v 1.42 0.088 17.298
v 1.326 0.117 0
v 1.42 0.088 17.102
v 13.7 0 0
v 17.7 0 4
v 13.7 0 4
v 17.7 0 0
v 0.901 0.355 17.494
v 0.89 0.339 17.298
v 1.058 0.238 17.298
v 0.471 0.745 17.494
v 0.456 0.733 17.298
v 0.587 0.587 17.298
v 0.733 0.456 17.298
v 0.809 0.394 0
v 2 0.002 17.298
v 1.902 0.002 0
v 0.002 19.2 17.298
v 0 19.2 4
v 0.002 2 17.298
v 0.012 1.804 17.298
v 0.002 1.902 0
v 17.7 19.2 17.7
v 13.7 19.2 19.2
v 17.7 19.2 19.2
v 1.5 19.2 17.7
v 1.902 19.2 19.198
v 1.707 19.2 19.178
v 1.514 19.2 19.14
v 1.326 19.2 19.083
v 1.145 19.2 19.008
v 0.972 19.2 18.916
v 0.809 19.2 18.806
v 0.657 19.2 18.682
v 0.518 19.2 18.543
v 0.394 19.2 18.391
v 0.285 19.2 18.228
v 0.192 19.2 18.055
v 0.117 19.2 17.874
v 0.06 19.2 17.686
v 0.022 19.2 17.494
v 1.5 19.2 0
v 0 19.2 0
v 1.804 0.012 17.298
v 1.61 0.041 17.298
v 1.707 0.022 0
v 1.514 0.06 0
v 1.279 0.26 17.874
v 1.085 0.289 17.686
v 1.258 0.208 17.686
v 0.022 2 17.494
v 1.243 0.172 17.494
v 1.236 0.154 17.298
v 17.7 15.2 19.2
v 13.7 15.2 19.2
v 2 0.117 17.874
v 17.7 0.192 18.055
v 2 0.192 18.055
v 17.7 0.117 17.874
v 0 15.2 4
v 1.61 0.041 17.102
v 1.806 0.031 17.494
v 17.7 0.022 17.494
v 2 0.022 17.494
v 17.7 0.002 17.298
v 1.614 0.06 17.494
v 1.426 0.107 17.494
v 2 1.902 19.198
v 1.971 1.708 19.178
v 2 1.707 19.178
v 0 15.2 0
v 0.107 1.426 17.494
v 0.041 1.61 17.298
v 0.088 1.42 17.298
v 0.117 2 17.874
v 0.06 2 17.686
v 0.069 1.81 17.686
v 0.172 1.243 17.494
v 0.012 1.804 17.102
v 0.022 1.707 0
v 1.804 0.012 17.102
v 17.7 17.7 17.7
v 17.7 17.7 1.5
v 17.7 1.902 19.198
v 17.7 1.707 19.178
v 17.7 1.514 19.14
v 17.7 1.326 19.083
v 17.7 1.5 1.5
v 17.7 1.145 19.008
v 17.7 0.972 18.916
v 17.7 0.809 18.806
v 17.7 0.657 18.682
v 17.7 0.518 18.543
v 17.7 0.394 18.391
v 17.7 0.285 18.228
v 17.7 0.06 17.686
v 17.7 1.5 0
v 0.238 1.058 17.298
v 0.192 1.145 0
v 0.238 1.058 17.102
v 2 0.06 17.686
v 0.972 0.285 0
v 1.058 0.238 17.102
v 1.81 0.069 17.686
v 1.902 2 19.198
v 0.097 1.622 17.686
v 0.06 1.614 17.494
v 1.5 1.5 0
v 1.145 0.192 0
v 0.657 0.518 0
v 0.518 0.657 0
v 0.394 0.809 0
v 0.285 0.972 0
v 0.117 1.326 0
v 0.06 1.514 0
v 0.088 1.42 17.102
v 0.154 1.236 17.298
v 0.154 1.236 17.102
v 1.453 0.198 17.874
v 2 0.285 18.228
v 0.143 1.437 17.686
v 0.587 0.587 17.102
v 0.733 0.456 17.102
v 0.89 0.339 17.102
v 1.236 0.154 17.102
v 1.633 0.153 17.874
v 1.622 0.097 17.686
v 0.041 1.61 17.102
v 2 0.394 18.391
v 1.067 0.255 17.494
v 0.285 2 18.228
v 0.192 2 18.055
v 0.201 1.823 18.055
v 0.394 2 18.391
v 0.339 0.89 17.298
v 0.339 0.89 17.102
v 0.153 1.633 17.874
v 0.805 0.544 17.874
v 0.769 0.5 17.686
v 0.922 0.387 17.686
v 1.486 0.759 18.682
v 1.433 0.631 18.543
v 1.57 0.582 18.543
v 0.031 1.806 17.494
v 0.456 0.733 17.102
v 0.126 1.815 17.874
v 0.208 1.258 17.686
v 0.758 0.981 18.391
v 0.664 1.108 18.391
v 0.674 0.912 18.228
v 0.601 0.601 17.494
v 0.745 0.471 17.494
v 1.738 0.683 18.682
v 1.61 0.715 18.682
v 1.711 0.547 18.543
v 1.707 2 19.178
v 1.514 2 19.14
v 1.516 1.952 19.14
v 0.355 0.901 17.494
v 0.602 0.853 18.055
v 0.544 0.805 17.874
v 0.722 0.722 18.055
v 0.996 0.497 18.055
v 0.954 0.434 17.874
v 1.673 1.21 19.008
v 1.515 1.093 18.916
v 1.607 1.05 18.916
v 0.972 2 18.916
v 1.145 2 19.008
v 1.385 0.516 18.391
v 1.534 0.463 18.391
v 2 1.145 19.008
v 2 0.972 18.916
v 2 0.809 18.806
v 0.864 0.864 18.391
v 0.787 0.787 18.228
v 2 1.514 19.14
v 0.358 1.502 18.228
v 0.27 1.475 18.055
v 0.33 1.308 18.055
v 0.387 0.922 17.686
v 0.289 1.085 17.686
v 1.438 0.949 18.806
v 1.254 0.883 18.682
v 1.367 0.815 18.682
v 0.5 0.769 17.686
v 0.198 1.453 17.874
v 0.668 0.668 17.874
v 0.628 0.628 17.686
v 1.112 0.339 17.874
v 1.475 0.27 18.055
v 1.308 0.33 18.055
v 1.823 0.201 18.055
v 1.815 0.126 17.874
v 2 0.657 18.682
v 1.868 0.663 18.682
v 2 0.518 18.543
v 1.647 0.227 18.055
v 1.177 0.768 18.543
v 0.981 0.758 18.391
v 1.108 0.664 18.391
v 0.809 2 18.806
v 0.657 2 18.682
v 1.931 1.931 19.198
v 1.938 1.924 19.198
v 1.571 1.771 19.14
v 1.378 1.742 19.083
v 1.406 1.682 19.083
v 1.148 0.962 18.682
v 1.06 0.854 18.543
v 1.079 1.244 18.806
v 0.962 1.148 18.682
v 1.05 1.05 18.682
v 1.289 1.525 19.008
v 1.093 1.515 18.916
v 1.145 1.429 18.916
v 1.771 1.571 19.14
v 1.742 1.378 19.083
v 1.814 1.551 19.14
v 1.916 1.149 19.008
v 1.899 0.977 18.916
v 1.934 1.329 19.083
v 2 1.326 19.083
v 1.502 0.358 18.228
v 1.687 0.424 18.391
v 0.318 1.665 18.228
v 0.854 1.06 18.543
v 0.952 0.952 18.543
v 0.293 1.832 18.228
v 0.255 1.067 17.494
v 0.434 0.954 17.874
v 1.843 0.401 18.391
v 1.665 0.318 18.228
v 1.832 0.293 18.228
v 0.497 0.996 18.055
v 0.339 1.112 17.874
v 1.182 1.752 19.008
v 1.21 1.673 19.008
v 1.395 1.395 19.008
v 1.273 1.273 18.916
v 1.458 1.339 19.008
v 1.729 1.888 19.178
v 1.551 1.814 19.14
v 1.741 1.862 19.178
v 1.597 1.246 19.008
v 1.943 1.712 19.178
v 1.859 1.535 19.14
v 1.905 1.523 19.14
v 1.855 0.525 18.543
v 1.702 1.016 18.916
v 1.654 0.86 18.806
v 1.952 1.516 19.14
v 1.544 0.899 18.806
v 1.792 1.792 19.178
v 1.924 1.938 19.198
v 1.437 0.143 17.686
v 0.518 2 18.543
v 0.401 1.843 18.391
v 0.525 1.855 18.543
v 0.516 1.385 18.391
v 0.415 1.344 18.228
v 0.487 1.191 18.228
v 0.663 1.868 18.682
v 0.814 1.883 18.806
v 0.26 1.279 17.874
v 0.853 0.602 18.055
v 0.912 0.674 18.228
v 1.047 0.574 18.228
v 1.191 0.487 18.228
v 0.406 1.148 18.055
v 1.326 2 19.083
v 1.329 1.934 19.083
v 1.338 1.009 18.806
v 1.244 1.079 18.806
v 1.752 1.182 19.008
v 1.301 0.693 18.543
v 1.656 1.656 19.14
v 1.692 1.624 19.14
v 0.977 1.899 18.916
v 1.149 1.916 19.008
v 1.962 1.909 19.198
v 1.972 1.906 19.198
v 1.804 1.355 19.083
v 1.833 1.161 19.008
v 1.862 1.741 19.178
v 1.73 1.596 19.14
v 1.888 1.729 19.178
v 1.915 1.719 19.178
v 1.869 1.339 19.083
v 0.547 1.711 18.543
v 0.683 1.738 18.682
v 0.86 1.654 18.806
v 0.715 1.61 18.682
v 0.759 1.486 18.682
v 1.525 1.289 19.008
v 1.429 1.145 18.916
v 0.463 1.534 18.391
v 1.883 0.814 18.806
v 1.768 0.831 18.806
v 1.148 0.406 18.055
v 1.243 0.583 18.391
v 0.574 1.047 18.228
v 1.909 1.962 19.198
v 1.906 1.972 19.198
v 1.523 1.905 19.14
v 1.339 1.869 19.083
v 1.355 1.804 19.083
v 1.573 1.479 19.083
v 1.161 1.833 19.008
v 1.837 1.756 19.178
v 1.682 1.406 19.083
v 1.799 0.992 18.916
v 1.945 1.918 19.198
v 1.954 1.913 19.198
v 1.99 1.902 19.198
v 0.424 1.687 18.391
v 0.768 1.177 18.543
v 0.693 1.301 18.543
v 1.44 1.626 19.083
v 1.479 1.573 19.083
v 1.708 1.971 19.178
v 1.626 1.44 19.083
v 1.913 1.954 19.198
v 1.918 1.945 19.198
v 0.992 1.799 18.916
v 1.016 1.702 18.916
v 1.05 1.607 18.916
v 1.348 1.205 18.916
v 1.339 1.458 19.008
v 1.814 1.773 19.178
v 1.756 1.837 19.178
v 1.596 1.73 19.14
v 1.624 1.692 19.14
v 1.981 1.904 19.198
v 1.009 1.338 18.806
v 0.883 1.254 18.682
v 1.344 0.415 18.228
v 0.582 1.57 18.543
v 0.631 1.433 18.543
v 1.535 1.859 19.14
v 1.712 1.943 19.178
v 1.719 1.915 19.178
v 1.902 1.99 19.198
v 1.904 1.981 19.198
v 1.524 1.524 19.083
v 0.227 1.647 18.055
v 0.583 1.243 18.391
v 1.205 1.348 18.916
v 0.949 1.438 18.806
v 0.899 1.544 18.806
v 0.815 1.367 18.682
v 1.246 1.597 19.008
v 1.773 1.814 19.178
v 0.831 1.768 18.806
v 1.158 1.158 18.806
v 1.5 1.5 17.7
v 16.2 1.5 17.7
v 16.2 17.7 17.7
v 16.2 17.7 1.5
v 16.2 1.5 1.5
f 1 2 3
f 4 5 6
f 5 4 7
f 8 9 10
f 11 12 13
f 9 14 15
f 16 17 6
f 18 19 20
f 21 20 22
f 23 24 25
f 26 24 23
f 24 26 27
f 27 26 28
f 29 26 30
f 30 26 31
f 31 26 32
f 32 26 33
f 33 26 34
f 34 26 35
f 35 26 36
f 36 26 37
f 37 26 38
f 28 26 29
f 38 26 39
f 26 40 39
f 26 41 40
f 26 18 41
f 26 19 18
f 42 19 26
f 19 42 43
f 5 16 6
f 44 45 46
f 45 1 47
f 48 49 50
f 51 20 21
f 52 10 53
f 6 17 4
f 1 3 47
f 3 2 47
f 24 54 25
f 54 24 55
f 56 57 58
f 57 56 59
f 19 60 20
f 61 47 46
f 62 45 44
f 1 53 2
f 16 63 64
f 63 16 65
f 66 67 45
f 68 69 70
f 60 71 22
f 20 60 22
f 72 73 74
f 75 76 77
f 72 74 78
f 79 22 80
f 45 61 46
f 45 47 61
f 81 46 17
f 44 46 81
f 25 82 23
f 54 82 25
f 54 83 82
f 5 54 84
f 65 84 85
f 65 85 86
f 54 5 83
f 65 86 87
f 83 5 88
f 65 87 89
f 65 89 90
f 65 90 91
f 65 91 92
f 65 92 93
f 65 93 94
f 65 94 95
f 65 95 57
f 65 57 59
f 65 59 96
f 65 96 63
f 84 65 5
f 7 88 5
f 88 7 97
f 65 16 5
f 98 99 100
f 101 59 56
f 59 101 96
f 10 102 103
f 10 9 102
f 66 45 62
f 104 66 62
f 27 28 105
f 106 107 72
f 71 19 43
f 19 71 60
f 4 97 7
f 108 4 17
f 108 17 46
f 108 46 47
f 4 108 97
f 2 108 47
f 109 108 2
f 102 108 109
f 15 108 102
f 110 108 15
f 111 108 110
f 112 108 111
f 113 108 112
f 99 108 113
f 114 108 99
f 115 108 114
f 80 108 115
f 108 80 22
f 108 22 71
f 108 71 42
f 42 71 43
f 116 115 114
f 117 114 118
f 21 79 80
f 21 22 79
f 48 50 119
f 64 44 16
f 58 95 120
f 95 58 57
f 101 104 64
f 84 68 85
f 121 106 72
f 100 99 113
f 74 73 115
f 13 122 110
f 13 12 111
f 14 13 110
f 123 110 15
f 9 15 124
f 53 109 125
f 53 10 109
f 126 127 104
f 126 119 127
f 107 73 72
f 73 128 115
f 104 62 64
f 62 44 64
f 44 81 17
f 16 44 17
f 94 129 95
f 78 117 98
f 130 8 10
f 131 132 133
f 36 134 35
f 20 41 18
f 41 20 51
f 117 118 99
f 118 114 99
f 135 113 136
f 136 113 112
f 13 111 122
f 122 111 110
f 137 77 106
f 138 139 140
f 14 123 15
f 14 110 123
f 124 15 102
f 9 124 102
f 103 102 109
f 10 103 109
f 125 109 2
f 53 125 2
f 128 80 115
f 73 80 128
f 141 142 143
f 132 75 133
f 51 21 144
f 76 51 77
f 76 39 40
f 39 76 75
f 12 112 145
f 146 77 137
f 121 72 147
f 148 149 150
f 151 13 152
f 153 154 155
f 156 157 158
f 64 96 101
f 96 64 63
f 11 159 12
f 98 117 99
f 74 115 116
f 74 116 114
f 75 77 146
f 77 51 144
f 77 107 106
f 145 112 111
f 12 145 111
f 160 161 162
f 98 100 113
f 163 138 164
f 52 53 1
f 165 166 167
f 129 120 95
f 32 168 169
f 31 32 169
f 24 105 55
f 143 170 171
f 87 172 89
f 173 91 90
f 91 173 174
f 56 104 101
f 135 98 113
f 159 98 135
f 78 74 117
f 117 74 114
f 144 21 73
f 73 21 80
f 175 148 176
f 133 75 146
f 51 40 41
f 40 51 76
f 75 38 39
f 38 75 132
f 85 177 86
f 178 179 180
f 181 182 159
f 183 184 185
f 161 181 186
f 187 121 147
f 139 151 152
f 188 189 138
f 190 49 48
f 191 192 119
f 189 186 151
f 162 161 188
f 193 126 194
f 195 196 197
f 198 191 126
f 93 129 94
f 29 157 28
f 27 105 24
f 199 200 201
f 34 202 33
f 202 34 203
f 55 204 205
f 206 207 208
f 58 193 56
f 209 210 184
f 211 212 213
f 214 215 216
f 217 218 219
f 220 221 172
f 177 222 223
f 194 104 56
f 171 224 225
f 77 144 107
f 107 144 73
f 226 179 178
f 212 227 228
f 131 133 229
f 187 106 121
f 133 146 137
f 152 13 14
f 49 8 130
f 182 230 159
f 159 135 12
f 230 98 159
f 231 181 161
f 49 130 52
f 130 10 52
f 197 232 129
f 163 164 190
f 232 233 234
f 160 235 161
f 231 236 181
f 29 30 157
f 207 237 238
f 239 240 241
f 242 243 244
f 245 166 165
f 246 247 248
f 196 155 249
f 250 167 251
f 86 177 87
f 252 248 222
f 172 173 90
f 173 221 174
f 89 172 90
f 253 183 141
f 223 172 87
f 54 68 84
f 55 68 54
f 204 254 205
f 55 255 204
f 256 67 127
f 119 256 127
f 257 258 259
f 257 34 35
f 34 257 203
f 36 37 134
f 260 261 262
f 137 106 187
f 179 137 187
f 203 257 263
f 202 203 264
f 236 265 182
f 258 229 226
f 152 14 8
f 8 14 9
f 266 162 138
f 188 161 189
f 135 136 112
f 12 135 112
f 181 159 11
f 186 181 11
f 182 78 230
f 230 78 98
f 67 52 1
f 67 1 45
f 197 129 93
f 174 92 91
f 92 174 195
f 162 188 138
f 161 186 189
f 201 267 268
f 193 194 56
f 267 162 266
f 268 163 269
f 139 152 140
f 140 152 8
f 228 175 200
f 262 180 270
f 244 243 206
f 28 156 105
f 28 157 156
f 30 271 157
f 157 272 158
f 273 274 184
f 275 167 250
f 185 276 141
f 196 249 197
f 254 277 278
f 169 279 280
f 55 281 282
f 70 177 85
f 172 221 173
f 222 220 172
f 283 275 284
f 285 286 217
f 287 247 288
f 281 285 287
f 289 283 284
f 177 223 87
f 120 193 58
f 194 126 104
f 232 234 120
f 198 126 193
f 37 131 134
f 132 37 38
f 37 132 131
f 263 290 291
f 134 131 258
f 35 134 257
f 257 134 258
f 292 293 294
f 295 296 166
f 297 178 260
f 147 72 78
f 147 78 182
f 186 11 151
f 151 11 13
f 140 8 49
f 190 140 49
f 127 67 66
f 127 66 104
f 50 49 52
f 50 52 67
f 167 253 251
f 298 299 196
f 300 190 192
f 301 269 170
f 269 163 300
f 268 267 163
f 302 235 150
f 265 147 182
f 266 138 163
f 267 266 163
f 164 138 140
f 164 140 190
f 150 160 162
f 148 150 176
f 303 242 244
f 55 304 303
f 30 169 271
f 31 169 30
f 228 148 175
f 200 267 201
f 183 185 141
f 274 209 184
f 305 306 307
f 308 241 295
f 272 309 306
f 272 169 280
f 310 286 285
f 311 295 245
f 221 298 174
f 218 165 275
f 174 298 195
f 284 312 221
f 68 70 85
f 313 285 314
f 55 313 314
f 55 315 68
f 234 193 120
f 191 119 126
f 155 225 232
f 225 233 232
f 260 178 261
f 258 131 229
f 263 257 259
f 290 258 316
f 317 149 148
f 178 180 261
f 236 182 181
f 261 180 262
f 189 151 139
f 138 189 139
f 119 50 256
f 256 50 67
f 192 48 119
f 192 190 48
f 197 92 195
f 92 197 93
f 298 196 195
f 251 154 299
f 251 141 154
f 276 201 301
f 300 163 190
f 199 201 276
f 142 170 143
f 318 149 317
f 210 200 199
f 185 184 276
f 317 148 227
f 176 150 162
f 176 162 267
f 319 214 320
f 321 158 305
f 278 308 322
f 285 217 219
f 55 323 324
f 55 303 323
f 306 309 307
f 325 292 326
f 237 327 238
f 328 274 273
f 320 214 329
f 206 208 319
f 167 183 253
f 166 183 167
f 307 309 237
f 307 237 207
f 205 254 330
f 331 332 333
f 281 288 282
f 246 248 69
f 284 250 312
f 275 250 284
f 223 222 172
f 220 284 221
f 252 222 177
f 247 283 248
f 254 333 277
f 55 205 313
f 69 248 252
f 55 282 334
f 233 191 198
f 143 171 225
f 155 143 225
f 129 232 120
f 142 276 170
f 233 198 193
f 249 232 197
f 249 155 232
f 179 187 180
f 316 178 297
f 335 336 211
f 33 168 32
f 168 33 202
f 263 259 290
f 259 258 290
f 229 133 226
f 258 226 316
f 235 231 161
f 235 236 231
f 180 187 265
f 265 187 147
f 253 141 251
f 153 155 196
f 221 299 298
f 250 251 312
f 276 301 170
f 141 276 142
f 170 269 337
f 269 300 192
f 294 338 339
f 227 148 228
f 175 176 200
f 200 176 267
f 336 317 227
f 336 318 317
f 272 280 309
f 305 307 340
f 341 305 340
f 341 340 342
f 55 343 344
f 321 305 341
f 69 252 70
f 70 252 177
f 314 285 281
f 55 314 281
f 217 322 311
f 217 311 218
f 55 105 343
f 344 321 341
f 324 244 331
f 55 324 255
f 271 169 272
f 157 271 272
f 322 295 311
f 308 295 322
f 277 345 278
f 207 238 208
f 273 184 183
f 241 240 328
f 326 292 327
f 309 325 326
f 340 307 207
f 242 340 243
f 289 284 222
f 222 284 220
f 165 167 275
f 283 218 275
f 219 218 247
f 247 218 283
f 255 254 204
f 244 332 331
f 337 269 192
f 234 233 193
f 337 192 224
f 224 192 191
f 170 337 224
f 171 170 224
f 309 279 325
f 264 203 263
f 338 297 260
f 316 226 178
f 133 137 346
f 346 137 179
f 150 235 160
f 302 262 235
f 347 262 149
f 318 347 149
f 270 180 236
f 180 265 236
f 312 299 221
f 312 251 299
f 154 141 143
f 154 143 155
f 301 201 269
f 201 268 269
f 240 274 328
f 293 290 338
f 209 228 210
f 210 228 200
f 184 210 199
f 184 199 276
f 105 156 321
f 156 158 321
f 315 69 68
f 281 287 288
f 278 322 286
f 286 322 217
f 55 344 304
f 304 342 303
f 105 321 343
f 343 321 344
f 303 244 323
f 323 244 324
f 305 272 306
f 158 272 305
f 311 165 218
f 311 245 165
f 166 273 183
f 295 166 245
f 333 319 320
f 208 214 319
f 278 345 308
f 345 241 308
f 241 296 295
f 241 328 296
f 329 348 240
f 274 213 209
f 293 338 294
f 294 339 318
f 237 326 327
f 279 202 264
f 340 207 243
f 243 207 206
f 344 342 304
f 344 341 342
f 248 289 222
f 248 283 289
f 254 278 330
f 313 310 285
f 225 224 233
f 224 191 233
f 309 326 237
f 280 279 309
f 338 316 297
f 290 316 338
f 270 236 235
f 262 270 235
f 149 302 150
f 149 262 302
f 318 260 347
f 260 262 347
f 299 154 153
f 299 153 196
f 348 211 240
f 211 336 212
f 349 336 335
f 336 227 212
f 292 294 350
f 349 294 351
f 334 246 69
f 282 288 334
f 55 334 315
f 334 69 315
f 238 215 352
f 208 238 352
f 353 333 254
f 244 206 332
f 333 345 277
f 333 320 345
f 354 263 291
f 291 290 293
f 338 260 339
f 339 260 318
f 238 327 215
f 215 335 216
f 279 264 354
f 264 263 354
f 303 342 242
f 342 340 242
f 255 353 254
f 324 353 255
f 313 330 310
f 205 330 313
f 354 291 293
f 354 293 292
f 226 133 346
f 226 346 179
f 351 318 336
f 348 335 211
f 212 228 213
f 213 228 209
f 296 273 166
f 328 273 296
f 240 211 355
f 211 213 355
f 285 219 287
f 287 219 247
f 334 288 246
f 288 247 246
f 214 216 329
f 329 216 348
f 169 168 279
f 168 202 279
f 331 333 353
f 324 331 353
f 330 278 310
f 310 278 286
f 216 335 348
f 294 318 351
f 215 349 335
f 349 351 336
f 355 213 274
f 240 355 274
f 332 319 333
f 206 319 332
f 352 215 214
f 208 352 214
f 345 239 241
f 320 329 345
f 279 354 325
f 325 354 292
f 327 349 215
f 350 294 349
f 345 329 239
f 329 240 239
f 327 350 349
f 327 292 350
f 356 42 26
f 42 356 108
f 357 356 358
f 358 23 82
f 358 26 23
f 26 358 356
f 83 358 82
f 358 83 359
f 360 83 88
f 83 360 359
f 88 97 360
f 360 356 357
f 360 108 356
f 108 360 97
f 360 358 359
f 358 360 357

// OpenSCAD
$fn = 64;

delta_size = 16.2;
overlap = 1.5;
edge_radius = 2;
edge_dia = 2 * edge_radius;
cable_channel_dia = 10;
cable_channel_radius = 13;

size_x = delta_size + overlap;
size_y = delta_size + 2 * overlap;
size_z = delta_size + 2 * overlap;

module half_sphere(diameter) {
    difference() {
        sphere(d = diameter);
        translate([diameter/4, 0, 0]) 
            cube([diameter/2, diameter, diameter], true);
    }
}

module corner_block() {
    hull() {
        // lower corners
        translate([edge_radius, edge_radius, 0])
            rotate([0, 90, 0]) 
                half_sphere(edge_dia);
        translate([size_x - edge_radius, edge_radius, edge_radius])
            cube(edge_dia, center = true);
        translate([edge_radius, size_y - edge_radius, edge_radius])
            cube(edge_dia, center = true);
        translate([size_x - edge_dia, size_y - edge_dia, 0])
            cube([edge_dia, edge_dia, size_z]);
        
        // upper corners
        translate([edge_radius, edge_radius, size_z - edge_radius])
            sphere(d = edge_dia);
        translate([size_x, edge_radius, size_z - edge_radius])
            half_sphere(edge_dia);
        translate([edge_radius, size_y - edge_radius, size_z - edge_radius]) {
            half_sphere(edge_dia);
            translate([0, edge_dia/2, 0])
                rotate([0, 0, 90])
                    half_sphere(edge_dia);
        }
    }
}

module corner() {
    difference() {
        corner_block();
        translate([overlap, size_y - overlap, 0])
            cube([delta_size + overlap, overlap, delta_size + overlap]);
        translate([overlap, overlap, 0])
            cube([delta_size + overlap, delta_size, overlap]);
        translate([overlap, overlap, overlap])
            cube([delta_size - overlap, delta_size, delta_size]);
    }
}

corner();
